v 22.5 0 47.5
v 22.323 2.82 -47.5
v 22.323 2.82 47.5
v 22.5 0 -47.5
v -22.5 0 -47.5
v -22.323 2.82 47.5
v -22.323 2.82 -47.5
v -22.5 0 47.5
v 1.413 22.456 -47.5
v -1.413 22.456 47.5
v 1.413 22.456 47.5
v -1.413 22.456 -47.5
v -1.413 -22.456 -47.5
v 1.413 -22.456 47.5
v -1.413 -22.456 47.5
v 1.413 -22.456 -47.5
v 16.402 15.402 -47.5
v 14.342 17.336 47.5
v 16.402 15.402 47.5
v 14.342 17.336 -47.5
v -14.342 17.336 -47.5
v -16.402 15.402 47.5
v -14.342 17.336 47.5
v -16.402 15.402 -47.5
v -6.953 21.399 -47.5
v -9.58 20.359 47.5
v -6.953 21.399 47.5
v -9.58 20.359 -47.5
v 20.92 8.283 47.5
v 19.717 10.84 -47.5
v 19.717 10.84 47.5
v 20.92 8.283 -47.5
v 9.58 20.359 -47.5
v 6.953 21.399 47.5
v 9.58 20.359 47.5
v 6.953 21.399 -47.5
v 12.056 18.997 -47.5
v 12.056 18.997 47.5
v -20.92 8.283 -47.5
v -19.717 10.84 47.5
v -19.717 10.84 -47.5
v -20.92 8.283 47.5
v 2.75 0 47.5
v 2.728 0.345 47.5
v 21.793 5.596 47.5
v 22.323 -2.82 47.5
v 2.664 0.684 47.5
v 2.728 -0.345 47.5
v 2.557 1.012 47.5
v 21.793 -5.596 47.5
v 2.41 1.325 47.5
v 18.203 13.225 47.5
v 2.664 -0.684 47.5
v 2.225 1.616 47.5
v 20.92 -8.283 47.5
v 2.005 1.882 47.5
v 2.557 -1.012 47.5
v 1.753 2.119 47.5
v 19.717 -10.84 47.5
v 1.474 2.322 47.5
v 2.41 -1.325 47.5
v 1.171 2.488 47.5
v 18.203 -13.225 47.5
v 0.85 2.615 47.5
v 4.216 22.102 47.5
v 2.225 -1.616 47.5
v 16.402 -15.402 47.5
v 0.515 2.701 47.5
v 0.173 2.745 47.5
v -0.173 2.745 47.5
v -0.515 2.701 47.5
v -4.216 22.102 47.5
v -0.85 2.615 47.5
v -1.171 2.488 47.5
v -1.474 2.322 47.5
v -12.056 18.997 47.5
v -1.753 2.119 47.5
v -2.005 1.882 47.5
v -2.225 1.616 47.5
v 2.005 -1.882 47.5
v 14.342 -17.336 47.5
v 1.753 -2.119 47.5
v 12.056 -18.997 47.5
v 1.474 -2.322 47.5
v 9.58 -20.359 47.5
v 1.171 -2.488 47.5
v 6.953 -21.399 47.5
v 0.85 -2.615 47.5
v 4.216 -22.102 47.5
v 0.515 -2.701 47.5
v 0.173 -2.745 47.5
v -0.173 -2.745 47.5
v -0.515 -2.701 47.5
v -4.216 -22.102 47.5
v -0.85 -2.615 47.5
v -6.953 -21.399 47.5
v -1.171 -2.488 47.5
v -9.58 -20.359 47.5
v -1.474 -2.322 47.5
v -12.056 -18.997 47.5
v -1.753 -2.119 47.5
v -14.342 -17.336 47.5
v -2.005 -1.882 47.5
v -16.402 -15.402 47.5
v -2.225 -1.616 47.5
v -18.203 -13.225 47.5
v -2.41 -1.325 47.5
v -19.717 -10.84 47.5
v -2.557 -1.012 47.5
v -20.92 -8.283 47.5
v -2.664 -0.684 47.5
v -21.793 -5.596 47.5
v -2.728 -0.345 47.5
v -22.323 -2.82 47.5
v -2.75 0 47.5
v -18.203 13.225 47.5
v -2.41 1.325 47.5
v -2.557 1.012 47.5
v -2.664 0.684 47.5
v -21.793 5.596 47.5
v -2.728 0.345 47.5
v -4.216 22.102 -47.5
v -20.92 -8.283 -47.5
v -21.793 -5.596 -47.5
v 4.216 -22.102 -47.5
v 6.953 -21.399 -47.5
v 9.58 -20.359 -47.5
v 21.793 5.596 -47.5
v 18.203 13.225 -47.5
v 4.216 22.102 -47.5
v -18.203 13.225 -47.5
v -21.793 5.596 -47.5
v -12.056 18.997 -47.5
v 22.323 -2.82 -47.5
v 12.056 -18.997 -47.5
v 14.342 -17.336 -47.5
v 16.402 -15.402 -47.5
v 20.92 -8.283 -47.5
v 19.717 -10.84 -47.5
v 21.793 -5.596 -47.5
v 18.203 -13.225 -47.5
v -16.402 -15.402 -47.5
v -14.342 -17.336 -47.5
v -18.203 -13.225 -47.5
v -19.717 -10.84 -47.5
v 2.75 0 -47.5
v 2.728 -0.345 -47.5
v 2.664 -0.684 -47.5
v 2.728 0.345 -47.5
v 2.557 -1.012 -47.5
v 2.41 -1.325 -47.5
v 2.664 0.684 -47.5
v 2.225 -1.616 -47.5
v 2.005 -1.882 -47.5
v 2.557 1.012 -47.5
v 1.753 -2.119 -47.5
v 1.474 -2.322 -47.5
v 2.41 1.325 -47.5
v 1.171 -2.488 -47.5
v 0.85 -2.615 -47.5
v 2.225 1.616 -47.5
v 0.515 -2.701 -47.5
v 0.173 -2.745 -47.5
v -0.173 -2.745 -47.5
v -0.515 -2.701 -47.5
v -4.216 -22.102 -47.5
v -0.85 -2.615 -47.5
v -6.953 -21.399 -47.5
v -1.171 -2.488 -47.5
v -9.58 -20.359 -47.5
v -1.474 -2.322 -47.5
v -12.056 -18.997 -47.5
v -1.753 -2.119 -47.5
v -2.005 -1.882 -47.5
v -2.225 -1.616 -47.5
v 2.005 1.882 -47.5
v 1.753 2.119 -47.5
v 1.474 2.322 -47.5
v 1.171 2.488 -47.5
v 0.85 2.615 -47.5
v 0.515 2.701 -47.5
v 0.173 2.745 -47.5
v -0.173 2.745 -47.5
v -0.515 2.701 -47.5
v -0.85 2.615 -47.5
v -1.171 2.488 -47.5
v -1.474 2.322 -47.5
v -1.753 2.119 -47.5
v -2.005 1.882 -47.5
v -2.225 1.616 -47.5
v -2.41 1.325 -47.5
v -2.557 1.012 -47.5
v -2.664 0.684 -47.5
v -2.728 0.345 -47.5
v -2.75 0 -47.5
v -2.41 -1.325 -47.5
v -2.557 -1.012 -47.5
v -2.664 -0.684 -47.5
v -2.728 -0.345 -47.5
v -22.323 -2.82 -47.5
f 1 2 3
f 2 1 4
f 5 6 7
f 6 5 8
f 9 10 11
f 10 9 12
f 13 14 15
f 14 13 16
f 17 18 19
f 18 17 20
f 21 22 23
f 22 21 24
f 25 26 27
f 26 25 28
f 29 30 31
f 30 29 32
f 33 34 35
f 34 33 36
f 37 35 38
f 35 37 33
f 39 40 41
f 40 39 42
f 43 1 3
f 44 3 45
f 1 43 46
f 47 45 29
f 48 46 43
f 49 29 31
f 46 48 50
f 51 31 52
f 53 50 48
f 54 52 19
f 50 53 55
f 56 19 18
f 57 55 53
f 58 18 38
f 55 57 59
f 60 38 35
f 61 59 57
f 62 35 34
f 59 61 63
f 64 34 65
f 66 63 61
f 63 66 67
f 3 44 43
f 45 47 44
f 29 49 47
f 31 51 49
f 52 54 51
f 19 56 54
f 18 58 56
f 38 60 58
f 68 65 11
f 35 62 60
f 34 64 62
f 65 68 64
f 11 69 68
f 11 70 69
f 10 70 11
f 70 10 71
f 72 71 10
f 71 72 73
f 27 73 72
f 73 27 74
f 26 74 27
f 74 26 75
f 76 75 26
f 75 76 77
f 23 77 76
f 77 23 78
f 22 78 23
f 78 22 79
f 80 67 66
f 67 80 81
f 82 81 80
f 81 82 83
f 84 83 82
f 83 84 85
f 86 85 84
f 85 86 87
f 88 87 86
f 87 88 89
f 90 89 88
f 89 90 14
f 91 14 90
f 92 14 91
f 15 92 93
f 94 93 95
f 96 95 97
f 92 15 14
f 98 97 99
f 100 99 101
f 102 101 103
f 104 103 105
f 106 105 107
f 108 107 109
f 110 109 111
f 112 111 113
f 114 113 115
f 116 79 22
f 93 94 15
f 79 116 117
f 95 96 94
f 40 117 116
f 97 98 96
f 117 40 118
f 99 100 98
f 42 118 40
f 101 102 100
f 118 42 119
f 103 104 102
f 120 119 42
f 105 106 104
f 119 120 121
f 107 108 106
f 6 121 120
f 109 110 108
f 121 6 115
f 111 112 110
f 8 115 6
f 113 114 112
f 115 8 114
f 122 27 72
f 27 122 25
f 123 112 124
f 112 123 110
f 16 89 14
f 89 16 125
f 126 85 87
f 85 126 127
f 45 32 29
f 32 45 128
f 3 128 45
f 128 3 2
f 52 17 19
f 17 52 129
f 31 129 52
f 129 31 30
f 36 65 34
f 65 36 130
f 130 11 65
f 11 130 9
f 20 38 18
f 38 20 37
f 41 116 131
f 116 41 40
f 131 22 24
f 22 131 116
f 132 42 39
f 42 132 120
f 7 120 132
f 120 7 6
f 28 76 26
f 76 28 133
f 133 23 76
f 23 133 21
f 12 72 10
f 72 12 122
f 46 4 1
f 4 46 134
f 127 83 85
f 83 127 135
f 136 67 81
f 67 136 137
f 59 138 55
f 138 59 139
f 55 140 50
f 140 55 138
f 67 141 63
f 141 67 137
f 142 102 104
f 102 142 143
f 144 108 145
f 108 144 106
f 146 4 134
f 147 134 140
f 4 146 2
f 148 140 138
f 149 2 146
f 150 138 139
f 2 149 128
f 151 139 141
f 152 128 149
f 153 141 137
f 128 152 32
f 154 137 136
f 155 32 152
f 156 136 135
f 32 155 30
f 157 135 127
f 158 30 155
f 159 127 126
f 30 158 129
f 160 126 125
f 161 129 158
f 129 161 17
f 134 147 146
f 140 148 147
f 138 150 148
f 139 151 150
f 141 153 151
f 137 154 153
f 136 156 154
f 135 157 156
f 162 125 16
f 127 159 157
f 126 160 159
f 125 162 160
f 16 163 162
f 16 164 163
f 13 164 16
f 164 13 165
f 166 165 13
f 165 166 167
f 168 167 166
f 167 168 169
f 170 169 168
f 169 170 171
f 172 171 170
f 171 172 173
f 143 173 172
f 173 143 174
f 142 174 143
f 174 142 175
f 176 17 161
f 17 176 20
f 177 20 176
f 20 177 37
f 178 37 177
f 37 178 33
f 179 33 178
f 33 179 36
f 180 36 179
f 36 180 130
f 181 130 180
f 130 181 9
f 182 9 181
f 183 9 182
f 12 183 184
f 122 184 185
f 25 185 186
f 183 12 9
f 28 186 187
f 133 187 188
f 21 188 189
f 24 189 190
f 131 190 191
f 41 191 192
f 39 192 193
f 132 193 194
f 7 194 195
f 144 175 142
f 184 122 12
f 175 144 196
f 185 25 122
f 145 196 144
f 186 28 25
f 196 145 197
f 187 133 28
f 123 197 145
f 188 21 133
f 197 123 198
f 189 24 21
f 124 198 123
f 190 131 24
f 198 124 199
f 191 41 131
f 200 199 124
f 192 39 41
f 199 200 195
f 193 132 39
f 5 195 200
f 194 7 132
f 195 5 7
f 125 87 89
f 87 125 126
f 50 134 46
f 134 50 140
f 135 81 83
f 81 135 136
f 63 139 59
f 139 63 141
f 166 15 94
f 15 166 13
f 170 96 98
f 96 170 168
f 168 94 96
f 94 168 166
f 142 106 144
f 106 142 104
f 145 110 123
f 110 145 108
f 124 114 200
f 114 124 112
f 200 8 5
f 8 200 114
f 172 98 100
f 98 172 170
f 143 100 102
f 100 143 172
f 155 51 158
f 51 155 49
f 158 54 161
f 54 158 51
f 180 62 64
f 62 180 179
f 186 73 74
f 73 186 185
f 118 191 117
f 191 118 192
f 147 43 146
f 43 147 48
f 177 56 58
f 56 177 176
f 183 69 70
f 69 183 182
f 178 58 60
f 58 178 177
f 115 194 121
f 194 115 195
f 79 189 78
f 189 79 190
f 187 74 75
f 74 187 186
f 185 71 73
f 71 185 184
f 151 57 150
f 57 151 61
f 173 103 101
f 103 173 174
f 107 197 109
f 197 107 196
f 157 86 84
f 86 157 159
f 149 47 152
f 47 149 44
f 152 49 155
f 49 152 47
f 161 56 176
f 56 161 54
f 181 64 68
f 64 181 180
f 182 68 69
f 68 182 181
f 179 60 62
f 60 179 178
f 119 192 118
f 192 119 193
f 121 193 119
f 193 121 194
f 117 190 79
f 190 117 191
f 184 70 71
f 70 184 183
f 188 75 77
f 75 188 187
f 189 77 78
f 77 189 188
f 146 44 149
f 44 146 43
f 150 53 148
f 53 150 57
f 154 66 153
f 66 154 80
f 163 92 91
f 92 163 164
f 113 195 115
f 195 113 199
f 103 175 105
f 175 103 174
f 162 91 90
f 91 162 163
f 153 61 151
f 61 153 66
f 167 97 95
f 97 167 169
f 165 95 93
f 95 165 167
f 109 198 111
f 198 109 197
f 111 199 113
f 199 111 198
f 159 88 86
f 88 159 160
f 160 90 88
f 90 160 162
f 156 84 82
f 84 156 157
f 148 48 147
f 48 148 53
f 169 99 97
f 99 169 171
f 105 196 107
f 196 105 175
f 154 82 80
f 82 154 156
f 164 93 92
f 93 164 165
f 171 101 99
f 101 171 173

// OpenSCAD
$fn = 50;


difference() {
	union() {
		translate(v = [0, 0, -47.5000000000]) {
			cylinder(h = 95, r = 22.5000000000);
		}
	}
	union() {
		translate(v = [0, 0, -100.0000000000]) {
			cylinder(h = 200, r = 2.7500000000);
		}
	}
}
